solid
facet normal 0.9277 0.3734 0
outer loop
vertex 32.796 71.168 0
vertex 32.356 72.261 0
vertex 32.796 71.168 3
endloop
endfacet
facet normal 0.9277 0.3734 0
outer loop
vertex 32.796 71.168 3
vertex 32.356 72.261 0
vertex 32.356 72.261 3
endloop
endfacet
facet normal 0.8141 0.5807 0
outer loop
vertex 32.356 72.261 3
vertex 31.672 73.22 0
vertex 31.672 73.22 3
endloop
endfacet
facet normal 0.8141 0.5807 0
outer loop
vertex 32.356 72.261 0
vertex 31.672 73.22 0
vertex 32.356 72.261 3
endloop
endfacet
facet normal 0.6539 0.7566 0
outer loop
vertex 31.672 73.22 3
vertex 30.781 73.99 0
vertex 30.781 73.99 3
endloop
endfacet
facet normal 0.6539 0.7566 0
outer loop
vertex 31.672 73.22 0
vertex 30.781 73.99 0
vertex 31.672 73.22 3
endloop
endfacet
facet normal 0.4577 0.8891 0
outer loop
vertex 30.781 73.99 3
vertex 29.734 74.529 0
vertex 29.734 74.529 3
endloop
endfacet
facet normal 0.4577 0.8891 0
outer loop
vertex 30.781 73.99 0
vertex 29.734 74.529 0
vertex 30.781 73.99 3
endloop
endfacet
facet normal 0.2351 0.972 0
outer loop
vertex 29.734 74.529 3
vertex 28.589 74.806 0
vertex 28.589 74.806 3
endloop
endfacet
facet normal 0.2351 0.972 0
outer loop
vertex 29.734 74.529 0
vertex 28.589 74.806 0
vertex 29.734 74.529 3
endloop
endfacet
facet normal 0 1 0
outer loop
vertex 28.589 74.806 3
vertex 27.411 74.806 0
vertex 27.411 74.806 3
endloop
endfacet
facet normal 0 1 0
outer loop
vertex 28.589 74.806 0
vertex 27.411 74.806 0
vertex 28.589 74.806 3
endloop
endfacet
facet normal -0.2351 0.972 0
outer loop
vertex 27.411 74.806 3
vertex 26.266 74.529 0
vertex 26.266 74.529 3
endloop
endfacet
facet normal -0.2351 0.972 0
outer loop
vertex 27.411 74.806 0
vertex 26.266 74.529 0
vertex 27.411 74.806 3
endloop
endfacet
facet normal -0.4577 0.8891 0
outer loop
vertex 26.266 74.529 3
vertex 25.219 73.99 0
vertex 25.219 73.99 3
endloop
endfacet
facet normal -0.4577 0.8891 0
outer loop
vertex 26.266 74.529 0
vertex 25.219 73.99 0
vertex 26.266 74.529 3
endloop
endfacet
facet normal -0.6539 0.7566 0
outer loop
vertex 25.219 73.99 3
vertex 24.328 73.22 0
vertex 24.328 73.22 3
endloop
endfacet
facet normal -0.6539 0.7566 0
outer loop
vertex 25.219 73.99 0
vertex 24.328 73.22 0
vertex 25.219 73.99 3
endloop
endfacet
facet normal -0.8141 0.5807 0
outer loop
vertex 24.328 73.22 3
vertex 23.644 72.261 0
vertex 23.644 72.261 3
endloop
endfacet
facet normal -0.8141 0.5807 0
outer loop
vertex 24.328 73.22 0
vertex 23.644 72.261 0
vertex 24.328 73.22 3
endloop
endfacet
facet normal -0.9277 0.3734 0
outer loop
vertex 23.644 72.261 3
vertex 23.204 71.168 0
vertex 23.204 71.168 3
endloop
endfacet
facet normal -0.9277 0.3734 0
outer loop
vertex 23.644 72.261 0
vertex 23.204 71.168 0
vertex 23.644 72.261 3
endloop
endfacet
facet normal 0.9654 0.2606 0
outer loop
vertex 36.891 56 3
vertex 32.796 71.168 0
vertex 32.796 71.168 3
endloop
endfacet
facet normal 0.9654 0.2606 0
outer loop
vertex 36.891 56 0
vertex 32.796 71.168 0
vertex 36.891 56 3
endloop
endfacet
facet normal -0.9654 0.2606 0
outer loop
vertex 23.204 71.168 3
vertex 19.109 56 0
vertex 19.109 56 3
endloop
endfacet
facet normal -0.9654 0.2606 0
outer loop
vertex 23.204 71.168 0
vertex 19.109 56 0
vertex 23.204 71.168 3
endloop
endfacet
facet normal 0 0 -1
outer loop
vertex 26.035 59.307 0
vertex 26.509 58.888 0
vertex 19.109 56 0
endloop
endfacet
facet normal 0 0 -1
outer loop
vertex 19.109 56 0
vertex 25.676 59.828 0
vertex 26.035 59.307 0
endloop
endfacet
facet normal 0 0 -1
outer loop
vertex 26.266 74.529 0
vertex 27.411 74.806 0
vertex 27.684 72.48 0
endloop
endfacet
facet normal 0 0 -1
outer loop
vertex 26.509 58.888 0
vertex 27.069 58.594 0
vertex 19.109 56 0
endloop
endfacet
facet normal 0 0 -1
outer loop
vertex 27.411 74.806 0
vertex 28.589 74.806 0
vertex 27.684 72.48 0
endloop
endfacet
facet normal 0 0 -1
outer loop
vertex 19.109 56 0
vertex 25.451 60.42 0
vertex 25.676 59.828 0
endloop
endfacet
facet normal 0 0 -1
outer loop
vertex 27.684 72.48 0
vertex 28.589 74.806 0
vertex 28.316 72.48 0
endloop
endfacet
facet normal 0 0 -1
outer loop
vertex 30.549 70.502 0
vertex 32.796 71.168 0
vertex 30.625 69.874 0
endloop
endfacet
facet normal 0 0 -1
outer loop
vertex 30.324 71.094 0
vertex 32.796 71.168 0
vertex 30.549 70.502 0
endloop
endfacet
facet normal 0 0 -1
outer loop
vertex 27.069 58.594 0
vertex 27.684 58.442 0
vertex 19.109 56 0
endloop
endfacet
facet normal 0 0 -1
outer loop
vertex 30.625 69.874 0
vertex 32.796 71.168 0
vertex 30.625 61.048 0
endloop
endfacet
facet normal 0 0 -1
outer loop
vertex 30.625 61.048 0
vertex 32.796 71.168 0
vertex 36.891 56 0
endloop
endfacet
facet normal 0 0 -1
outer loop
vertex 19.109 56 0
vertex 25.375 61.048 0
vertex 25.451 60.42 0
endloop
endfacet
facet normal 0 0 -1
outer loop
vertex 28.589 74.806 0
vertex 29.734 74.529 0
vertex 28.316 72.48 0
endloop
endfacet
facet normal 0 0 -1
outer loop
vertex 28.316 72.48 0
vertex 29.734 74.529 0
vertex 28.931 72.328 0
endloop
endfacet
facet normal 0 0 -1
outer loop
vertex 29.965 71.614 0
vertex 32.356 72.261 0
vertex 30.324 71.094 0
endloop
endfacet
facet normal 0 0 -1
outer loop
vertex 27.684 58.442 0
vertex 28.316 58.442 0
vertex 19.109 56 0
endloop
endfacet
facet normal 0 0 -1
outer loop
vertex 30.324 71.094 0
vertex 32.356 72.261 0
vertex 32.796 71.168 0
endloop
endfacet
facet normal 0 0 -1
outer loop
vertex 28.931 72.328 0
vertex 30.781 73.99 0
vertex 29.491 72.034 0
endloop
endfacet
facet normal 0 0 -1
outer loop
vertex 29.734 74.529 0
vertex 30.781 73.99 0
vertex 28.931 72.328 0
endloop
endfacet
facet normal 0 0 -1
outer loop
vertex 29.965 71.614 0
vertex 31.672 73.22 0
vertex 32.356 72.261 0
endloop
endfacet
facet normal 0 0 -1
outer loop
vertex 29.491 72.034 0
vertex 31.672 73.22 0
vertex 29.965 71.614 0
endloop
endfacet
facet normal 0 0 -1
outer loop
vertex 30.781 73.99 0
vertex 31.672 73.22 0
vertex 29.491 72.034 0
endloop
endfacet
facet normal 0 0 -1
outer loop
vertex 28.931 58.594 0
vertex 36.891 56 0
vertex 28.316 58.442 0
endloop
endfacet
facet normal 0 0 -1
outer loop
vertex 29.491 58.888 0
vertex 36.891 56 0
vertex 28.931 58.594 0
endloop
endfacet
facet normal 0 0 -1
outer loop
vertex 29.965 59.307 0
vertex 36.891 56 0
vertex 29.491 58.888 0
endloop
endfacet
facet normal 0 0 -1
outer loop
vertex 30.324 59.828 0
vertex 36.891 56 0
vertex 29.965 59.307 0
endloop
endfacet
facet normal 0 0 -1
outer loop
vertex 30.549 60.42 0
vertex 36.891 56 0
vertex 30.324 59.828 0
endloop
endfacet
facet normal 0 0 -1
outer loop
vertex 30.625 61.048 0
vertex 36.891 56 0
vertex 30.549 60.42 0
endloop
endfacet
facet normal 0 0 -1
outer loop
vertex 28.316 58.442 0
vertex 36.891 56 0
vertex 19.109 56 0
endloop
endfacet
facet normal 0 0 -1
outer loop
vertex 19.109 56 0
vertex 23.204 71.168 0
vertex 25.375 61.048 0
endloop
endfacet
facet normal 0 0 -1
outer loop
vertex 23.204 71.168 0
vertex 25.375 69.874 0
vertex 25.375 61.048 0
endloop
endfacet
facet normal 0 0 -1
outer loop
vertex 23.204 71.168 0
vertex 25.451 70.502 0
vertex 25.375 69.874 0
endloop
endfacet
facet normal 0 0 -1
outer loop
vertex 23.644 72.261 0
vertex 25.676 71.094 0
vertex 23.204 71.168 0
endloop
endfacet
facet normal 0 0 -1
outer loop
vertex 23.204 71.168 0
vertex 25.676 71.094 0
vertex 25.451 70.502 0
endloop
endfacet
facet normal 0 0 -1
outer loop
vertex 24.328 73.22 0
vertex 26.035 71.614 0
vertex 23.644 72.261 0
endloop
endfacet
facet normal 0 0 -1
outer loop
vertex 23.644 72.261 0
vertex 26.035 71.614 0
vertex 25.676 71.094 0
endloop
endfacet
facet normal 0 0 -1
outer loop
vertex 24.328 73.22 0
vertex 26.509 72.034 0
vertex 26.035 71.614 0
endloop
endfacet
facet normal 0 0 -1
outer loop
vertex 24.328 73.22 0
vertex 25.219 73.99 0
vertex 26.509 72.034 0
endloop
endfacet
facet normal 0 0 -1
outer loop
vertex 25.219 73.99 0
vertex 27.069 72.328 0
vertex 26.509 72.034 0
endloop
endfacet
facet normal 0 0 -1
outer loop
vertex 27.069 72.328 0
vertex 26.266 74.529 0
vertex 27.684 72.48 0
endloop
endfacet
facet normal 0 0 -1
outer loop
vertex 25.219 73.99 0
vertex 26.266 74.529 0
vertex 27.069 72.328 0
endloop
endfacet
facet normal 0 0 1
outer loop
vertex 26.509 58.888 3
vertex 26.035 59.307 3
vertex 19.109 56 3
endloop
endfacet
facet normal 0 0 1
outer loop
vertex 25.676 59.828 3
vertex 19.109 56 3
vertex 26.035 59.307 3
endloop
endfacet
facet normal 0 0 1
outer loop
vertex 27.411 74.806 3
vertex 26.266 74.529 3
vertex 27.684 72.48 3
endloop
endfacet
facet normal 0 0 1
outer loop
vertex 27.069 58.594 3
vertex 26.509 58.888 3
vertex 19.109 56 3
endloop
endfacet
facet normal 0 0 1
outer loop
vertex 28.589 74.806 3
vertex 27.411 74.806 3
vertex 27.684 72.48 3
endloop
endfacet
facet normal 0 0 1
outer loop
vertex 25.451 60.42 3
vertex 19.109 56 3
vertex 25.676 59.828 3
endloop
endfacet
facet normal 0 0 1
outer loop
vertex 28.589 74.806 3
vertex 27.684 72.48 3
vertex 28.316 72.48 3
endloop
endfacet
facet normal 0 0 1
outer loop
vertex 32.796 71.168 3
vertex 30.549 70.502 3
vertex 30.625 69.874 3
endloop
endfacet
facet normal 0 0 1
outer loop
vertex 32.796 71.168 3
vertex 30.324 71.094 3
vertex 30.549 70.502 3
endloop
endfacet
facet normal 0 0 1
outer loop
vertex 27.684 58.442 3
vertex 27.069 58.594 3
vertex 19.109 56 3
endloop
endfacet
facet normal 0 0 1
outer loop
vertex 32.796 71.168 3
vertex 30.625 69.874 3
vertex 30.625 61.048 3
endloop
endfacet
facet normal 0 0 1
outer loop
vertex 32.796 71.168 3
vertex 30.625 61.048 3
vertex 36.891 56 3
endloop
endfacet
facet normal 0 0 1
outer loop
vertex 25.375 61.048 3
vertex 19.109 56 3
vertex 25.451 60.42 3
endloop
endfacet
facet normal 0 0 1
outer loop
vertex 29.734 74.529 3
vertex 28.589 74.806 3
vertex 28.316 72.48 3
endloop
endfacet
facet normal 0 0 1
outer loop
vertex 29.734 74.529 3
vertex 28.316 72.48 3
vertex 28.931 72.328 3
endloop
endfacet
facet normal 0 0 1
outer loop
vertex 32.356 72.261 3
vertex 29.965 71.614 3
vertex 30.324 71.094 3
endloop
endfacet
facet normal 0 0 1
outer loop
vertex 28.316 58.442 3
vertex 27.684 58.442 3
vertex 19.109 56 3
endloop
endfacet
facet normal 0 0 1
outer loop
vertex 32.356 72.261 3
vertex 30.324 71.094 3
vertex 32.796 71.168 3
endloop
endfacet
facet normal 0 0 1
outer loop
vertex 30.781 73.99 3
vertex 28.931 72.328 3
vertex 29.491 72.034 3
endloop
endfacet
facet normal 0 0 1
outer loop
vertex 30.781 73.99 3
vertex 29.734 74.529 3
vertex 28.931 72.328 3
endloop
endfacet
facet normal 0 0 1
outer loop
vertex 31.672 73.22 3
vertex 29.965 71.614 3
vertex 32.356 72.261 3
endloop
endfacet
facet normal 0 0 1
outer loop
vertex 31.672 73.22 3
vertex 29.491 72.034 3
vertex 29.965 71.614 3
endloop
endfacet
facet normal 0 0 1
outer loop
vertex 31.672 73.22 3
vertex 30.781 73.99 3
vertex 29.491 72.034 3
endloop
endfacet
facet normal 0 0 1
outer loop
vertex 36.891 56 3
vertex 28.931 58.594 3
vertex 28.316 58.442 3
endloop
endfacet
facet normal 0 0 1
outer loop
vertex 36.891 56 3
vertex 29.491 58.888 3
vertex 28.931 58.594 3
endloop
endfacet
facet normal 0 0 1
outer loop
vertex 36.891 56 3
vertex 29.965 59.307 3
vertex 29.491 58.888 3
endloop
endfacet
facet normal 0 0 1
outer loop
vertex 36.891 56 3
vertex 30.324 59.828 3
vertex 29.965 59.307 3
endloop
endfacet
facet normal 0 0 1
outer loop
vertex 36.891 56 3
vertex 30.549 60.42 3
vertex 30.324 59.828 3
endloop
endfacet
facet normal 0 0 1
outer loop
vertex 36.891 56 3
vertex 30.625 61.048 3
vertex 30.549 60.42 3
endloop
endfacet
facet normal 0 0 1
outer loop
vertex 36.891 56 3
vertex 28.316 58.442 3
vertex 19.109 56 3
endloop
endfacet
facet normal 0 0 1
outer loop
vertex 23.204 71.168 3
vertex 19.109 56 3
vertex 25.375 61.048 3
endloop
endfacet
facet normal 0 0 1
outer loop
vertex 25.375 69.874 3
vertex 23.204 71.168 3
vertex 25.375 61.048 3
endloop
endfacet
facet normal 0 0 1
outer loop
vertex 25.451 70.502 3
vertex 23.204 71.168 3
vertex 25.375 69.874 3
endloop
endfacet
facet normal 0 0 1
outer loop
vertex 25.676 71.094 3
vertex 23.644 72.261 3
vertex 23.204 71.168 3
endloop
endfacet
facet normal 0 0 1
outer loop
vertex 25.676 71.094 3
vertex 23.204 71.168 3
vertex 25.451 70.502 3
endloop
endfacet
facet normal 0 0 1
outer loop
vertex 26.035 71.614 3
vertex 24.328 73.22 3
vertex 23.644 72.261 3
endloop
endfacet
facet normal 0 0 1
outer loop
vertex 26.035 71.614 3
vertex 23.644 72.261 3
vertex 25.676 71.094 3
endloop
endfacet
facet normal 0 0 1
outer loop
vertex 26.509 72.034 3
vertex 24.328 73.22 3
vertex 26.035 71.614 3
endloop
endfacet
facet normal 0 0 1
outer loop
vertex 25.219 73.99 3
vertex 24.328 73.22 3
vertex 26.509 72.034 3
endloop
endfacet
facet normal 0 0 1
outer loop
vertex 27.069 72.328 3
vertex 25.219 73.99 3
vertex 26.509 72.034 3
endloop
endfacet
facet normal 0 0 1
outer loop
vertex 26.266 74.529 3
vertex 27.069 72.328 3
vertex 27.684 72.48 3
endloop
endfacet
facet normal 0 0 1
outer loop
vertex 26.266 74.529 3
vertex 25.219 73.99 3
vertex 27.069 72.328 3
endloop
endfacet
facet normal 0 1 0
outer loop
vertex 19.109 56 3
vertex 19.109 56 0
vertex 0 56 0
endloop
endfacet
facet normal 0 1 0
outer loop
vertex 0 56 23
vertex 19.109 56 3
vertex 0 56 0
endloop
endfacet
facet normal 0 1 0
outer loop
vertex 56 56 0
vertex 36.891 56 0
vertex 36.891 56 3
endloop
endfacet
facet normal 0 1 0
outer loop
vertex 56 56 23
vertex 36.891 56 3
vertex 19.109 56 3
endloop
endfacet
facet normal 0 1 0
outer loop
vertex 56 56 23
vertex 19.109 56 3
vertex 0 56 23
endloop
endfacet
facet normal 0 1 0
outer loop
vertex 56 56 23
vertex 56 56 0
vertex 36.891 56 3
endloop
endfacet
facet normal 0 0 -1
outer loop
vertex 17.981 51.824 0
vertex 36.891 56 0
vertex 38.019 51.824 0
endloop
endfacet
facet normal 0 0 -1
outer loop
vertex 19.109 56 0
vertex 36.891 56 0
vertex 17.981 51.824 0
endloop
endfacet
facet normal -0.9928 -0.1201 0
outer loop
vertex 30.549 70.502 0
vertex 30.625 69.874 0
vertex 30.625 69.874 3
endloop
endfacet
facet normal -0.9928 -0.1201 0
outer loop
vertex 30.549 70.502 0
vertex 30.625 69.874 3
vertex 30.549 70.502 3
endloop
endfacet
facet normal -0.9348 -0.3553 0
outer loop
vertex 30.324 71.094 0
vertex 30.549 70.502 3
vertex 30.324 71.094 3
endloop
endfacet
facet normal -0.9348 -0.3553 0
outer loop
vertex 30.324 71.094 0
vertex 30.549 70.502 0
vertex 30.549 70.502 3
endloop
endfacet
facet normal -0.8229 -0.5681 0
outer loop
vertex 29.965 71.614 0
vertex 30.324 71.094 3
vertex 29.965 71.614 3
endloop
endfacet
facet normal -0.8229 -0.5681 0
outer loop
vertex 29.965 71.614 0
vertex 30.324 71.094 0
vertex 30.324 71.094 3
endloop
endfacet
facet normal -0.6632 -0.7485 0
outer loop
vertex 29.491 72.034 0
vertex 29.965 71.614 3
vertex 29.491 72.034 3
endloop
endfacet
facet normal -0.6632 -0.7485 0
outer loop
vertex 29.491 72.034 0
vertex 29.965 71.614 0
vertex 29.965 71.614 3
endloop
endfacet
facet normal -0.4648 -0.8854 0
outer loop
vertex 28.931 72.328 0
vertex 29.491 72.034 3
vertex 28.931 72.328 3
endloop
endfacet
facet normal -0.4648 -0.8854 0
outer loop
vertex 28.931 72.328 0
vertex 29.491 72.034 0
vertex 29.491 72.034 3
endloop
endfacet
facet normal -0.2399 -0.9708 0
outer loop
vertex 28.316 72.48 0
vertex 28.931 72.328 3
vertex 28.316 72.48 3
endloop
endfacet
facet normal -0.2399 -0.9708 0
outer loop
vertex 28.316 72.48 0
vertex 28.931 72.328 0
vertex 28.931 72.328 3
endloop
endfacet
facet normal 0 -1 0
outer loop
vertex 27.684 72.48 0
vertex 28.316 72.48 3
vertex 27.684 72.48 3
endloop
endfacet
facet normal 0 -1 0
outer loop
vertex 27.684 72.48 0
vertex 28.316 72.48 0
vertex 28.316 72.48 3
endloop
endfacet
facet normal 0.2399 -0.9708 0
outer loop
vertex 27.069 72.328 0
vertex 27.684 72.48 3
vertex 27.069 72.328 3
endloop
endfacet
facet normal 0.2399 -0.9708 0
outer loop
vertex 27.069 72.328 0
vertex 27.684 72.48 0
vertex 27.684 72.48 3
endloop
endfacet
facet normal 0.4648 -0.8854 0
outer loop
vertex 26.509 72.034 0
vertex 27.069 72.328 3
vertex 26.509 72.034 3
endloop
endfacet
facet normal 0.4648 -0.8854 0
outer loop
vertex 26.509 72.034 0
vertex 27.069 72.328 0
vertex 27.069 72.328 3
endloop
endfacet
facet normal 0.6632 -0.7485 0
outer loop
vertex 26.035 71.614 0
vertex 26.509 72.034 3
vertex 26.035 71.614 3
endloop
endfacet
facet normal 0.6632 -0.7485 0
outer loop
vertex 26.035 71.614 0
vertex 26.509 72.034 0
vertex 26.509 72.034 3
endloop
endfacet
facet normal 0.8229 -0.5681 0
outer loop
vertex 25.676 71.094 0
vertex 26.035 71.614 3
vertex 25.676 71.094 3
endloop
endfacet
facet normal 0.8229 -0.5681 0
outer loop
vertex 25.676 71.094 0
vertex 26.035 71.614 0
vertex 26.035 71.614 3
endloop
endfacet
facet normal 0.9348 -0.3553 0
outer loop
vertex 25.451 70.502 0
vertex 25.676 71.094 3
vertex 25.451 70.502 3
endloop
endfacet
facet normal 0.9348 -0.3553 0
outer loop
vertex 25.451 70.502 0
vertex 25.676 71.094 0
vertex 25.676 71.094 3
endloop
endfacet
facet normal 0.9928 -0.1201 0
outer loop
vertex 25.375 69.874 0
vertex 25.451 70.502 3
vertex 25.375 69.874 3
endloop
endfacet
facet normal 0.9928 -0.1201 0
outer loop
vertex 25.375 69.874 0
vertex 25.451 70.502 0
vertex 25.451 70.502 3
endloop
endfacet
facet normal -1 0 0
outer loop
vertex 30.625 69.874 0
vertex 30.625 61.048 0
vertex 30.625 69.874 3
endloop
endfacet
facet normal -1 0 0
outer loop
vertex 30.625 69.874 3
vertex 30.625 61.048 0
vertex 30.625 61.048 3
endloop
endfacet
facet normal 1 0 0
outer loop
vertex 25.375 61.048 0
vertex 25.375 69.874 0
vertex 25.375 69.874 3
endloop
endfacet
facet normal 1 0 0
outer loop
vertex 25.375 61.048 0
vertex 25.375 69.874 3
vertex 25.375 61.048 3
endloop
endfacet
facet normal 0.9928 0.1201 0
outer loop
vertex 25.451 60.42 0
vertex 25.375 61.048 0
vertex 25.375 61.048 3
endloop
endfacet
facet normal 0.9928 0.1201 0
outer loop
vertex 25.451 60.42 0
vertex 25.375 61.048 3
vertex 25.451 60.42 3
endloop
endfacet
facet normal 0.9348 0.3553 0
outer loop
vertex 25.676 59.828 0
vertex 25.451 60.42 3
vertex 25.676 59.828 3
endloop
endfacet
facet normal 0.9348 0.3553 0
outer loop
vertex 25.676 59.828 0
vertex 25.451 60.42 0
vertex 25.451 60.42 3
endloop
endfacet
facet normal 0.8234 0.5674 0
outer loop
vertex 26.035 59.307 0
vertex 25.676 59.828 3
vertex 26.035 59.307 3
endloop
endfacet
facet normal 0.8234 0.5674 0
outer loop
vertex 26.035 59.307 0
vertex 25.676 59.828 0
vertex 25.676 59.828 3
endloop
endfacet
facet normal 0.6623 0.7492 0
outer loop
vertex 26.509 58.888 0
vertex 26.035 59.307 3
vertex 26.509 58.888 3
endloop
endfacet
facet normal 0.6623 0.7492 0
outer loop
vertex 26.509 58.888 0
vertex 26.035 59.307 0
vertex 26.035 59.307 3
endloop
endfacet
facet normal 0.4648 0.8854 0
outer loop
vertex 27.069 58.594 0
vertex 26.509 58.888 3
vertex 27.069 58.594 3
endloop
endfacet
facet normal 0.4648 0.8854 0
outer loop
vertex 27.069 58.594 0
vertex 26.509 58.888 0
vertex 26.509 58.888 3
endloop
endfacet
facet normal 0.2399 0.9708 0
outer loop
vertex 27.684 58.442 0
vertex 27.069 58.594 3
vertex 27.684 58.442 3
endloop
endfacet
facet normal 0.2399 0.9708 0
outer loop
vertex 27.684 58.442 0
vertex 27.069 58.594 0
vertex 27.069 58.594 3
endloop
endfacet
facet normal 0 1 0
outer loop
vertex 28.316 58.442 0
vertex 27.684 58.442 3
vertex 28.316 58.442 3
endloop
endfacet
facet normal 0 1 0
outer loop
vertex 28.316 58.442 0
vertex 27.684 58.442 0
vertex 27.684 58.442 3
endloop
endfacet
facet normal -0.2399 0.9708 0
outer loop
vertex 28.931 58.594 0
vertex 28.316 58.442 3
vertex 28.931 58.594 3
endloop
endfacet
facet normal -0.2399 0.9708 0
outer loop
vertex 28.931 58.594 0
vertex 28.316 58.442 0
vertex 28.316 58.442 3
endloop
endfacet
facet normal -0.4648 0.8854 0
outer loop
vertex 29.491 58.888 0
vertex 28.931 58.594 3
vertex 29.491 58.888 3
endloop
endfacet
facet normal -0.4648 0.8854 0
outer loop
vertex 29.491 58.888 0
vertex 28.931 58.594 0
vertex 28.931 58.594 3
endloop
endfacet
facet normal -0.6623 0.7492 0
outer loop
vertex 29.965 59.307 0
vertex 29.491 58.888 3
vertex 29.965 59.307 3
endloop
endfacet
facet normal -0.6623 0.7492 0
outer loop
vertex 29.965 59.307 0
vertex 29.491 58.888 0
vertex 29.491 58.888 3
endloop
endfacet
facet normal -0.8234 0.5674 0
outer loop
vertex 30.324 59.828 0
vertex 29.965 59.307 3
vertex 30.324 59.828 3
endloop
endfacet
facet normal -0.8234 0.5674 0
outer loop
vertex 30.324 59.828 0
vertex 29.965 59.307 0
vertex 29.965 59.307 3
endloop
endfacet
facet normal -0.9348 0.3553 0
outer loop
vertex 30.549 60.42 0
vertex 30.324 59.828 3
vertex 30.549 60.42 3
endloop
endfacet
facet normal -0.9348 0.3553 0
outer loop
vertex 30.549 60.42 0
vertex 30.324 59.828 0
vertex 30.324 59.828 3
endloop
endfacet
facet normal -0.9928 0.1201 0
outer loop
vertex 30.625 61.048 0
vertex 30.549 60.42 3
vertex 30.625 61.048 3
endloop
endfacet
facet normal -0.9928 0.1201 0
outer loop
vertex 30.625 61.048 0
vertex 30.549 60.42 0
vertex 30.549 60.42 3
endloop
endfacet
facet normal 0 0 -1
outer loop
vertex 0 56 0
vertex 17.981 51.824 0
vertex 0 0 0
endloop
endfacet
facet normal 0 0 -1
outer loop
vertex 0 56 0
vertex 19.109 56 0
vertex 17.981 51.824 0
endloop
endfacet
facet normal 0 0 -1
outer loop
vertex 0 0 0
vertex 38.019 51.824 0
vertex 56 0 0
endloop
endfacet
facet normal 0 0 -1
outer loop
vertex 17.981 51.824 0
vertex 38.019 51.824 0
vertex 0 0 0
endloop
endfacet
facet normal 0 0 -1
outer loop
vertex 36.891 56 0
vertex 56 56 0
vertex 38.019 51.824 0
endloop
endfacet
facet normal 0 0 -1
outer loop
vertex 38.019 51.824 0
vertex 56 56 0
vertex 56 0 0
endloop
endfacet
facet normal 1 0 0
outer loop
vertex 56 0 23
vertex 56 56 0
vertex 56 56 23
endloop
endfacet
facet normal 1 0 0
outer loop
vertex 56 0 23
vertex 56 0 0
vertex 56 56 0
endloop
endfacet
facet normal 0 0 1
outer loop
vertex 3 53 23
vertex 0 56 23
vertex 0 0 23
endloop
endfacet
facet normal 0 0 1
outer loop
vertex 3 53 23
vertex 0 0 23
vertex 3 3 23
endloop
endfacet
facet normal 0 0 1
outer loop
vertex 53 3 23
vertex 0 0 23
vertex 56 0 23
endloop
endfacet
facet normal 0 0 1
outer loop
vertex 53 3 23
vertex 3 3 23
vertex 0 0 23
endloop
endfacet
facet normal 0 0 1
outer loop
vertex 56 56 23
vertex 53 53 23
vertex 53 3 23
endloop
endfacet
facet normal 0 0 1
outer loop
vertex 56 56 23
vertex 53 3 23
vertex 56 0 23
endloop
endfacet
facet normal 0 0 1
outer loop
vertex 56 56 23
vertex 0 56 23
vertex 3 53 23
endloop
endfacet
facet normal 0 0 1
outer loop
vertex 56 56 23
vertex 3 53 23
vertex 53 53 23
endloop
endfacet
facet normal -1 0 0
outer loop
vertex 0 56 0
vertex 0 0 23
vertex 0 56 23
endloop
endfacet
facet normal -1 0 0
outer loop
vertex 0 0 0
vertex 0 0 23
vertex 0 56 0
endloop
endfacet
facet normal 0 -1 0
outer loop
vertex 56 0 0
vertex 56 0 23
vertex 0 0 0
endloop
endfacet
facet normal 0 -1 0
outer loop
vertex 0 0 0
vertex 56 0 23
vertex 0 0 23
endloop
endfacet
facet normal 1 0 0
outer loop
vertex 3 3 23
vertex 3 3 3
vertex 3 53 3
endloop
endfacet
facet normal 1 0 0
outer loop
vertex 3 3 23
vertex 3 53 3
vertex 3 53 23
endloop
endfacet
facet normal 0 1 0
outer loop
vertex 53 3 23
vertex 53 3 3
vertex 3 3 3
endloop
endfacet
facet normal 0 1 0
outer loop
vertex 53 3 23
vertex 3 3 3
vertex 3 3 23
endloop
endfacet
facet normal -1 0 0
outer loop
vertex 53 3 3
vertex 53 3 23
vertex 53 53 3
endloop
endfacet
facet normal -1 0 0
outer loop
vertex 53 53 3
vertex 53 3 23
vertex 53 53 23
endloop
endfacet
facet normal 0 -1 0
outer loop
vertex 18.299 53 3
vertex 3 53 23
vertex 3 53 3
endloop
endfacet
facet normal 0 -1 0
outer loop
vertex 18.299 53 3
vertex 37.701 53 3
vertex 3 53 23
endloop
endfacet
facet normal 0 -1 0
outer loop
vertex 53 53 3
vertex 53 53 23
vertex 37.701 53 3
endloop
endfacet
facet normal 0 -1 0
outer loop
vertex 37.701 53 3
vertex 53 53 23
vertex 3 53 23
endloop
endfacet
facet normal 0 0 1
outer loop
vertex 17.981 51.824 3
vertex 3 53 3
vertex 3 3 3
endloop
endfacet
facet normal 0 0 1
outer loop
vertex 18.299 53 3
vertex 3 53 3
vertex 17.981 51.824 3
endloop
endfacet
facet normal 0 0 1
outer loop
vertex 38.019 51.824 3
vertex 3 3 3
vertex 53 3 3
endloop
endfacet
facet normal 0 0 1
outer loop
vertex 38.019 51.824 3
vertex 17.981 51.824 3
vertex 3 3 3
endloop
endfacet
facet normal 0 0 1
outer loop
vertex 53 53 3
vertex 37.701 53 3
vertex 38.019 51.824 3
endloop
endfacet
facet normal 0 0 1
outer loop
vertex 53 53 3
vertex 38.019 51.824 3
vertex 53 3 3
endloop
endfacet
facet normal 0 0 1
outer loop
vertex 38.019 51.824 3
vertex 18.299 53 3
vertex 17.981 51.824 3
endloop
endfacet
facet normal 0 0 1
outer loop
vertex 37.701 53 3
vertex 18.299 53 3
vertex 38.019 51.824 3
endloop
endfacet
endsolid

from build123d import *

# Parameters (mm, degrees)
BOX001_W         = 50
BOX001_H         = 50
BOX001_DEPTH     = 20
BOX002_W         = 56
BOX002_H         = 56
BOX002_DEPTH     = 23
EXTRUDE001_DEPTH = 3


with BuildPart() as cube001:
    # Box001 → Box001 (new body)
    with BuildSketch(Plane(origin=(3, 3, 3), x_dir=(1, 0, 0), z_dir=(0, 0, 1))):
        with Locations((25, 25)):
            Rectangle(BOX001_W, BOX001_H)
    extrude(amount=BOX001_DEPTH)


with BuildPart() as substract_caixa:
    # Box002 → Box002 (new body)
    with BuildSketch(Plane.XY):
        with Locations((28, 28)):
            Rectangle(BOX002_W, BOX002_H)
    extrude(amount=BOX002_DEPTH)

    # Cut: cut Cube001
    add(cube001.part, mode=Mode.SUBTRACT)


with BuildPart() as fusion_caixa_end:
    # Sketch002 → Extrude001 (new body)
    with BuildSketch(Plane.XY):
        with BuildLine():
            Line((17.981379, 51.82386), (38.018621, 51.82386))
            Line((38.018621, 51.82386), (32.795895, 71.168476))
            ThreePointArc((32.795895, 71.168476), (28, 74.841274), (23.204105, 71.168476))
            Line((23.204105, 71.168476), (17.981379, 51.82386))
        make_face()
        with BuildLine():
            ThreePointArc((30.625023, 69.873664), (28, 72.498687), (25.374977, 69.873664))
            Line((25.374977, 69.873664), (25.374977, 61.048153))
            ThreePointArc((25.374977, 61.048153), (28, 58.42313), (30.625023, 61.048153))
            Line((30.625023, 69.873664), (30.625023, 61.048153))
        make_face(mode=Mode.SUBTRACT)
    extrude(amount=EXTRUDE001_DEPTH)

    # Fusion002: union Substract-Caixa
    add(substract_caixa.part)


solid = fusion_caixa_end.part
